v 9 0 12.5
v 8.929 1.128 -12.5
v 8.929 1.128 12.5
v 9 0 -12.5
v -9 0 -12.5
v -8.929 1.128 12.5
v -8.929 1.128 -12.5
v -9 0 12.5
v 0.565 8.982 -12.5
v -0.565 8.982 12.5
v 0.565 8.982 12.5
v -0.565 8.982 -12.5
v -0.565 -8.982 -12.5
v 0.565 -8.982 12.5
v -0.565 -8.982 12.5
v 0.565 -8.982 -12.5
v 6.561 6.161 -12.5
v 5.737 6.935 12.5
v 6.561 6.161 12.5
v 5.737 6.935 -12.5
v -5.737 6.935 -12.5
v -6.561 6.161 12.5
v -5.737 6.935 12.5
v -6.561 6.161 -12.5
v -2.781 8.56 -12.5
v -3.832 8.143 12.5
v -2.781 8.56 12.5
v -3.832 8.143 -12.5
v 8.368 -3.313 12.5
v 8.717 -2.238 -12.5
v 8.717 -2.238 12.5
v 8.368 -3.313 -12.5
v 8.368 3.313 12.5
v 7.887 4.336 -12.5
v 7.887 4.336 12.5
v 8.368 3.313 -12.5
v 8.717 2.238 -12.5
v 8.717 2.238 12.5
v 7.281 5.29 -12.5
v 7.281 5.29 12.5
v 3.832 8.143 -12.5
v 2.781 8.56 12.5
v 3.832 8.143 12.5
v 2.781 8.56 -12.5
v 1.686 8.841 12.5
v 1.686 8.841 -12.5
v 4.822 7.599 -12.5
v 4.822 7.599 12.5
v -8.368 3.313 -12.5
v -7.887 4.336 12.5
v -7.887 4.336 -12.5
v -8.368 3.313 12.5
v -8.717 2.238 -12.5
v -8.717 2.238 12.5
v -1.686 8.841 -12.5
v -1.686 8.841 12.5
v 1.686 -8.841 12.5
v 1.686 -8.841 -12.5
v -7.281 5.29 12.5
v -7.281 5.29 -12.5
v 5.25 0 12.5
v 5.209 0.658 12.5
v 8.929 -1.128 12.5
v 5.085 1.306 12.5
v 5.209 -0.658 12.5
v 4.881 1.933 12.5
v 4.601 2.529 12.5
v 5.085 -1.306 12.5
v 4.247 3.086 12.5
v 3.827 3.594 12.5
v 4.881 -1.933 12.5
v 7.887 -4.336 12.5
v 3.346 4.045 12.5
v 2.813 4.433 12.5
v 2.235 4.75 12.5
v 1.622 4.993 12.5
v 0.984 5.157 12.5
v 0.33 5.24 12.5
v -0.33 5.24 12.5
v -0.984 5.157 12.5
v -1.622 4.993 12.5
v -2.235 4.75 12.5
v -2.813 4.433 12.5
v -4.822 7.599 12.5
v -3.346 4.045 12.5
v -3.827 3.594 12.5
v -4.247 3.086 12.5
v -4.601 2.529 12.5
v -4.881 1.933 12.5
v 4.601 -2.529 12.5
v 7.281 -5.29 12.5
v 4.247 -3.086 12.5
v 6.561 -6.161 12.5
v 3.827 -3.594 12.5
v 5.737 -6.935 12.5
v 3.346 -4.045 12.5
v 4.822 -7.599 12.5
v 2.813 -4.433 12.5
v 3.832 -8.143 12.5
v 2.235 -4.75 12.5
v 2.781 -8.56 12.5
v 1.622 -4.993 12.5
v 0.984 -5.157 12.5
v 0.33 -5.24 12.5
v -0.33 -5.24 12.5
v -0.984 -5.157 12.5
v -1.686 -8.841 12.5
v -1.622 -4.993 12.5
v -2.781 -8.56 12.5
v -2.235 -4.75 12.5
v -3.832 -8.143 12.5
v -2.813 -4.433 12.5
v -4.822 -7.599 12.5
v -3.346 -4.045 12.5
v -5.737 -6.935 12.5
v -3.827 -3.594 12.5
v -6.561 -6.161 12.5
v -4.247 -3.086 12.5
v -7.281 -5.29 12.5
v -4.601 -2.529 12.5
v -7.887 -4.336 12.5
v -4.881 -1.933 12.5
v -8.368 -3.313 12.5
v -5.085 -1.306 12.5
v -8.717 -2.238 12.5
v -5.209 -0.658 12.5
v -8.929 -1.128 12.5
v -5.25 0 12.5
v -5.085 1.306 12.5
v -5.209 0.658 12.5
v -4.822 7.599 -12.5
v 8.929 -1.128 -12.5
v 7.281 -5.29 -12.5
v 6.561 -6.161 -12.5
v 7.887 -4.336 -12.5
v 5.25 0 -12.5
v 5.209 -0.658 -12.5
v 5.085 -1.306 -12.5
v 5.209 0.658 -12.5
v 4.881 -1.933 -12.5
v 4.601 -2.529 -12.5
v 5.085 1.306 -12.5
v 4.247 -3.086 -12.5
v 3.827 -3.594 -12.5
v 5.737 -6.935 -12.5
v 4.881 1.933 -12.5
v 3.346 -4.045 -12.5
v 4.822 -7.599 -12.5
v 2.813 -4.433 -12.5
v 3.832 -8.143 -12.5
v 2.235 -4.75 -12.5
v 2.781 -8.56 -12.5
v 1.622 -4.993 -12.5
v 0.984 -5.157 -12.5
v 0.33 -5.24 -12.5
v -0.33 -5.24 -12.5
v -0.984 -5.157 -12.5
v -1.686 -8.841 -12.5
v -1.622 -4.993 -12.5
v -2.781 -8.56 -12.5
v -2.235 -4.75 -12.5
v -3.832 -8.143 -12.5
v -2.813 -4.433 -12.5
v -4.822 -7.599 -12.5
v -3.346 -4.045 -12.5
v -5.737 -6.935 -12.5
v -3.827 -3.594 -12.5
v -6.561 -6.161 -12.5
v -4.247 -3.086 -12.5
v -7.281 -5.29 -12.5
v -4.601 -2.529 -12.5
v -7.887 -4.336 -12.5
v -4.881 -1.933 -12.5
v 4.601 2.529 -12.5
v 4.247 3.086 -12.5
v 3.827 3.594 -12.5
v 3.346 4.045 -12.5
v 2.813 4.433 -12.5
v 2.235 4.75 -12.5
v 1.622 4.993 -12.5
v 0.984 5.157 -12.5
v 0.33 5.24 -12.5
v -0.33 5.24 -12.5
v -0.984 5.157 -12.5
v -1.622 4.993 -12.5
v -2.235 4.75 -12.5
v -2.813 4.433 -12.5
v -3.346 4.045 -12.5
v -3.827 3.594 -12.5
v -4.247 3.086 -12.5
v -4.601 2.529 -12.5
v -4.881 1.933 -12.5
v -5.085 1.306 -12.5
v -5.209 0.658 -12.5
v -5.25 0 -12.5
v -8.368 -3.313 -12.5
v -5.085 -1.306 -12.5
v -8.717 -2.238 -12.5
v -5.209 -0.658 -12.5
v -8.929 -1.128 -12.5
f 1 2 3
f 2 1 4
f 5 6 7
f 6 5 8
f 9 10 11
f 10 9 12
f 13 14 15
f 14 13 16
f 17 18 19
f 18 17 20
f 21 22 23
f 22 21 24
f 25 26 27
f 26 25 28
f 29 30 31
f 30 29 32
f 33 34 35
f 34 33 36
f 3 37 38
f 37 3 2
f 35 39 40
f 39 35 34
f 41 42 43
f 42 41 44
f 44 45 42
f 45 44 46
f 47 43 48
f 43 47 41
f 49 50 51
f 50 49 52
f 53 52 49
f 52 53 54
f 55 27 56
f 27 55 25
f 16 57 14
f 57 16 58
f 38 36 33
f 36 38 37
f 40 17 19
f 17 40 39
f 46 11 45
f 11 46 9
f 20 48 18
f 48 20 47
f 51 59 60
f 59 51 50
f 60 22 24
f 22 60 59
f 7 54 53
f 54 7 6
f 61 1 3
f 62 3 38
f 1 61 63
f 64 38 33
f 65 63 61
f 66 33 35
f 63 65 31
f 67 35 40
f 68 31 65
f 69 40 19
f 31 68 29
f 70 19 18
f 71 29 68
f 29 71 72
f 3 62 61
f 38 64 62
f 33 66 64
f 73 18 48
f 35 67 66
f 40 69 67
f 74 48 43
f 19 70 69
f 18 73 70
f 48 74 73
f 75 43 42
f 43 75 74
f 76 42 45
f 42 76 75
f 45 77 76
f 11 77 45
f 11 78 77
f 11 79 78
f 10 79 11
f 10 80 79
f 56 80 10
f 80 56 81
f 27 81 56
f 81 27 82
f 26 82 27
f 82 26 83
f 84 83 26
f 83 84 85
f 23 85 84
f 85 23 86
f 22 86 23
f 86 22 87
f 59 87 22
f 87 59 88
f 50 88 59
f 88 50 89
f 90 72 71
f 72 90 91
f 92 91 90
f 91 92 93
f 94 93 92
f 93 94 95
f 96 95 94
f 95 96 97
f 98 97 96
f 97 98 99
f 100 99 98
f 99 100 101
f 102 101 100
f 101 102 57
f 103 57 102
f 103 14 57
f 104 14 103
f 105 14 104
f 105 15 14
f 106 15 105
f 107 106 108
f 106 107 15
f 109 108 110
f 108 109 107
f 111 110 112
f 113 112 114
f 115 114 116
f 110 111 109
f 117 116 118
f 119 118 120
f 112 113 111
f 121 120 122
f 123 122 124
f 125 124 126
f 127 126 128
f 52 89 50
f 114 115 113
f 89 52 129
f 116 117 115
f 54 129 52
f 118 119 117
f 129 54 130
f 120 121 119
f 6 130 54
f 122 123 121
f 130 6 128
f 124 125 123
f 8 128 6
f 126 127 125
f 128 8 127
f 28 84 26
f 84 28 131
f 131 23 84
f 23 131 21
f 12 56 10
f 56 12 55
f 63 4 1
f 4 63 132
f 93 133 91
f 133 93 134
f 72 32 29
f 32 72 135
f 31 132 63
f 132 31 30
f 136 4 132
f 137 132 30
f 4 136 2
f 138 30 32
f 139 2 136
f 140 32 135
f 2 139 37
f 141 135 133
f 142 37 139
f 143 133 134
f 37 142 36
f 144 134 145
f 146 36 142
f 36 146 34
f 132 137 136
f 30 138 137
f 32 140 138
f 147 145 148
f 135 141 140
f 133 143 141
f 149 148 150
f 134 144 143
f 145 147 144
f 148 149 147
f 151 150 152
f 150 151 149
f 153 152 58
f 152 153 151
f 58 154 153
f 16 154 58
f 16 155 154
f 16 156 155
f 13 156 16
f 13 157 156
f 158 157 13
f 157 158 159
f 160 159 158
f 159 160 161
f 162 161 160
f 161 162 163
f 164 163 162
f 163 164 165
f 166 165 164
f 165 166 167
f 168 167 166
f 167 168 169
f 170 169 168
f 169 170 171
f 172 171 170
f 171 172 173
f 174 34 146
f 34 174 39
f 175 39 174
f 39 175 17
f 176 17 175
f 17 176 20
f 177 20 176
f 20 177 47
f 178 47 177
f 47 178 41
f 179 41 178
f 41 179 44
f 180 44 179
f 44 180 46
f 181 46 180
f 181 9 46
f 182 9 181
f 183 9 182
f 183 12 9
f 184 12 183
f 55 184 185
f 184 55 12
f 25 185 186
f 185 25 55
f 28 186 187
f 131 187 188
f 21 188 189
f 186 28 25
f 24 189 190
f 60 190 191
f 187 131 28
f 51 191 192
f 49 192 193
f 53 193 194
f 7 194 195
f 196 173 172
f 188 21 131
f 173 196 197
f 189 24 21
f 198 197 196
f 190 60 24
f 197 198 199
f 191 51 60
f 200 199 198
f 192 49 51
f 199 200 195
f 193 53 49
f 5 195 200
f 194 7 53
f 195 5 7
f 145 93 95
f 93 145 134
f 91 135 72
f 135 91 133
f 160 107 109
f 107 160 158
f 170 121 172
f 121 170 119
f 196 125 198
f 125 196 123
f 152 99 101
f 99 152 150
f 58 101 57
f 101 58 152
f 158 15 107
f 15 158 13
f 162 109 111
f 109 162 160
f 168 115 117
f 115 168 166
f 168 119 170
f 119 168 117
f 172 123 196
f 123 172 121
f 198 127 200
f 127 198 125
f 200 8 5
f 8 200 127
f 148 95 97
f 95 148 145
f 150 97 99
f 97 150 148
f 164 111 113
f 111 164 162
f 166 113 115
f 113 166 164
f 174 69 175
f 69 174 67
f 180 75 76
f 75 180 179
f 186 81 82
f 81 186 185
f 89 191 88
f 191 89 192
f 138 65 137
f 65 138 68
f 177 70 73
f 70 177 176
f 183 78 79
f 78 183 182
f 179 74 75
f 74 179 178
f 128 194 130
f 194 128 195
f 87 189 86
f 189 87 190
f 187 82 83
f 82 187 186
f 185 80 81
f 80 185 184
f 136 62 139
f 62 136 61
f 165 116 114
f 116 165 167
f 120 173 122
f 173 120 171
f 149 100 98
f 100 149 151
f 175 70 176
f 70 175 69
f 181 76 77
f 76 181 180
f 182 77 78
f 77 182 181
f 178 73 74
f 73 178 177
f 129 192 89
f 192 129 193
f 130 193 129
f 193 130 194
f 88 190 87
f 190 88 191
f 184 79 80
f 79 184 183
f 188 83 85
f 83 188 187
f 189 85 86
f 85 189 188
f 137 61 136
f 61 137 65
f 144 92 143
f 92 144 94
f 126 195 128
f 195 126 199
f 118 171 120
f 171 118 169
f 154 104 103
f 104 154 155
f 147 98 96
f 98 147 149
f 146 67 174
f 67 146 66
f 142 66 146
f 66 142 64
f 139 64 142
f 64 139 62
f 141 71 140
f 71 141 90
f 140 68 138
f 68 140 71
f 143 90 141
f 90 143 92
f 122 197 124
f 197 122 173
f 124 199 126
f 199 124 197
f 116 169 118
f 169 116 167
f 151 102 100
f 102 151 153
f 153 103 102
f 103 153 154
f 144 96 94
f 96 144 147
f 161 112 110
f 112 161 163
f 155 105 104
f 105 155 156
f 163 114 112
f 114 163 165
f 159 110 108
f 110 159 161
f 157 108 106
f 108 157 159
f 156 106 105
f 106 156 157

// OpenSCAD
$fn = 50;


difference() {
	union() {
		translate(v = [0, 0, -12.5000000000]) {
			cylinder(h = 25, r = 9.0000000000);
		}
	}
	union() {
		translate(v = [0, 0, -100.0000000000]) {
			cylinder(h = 200, r = 5.2500000000);
		}
	}
}
